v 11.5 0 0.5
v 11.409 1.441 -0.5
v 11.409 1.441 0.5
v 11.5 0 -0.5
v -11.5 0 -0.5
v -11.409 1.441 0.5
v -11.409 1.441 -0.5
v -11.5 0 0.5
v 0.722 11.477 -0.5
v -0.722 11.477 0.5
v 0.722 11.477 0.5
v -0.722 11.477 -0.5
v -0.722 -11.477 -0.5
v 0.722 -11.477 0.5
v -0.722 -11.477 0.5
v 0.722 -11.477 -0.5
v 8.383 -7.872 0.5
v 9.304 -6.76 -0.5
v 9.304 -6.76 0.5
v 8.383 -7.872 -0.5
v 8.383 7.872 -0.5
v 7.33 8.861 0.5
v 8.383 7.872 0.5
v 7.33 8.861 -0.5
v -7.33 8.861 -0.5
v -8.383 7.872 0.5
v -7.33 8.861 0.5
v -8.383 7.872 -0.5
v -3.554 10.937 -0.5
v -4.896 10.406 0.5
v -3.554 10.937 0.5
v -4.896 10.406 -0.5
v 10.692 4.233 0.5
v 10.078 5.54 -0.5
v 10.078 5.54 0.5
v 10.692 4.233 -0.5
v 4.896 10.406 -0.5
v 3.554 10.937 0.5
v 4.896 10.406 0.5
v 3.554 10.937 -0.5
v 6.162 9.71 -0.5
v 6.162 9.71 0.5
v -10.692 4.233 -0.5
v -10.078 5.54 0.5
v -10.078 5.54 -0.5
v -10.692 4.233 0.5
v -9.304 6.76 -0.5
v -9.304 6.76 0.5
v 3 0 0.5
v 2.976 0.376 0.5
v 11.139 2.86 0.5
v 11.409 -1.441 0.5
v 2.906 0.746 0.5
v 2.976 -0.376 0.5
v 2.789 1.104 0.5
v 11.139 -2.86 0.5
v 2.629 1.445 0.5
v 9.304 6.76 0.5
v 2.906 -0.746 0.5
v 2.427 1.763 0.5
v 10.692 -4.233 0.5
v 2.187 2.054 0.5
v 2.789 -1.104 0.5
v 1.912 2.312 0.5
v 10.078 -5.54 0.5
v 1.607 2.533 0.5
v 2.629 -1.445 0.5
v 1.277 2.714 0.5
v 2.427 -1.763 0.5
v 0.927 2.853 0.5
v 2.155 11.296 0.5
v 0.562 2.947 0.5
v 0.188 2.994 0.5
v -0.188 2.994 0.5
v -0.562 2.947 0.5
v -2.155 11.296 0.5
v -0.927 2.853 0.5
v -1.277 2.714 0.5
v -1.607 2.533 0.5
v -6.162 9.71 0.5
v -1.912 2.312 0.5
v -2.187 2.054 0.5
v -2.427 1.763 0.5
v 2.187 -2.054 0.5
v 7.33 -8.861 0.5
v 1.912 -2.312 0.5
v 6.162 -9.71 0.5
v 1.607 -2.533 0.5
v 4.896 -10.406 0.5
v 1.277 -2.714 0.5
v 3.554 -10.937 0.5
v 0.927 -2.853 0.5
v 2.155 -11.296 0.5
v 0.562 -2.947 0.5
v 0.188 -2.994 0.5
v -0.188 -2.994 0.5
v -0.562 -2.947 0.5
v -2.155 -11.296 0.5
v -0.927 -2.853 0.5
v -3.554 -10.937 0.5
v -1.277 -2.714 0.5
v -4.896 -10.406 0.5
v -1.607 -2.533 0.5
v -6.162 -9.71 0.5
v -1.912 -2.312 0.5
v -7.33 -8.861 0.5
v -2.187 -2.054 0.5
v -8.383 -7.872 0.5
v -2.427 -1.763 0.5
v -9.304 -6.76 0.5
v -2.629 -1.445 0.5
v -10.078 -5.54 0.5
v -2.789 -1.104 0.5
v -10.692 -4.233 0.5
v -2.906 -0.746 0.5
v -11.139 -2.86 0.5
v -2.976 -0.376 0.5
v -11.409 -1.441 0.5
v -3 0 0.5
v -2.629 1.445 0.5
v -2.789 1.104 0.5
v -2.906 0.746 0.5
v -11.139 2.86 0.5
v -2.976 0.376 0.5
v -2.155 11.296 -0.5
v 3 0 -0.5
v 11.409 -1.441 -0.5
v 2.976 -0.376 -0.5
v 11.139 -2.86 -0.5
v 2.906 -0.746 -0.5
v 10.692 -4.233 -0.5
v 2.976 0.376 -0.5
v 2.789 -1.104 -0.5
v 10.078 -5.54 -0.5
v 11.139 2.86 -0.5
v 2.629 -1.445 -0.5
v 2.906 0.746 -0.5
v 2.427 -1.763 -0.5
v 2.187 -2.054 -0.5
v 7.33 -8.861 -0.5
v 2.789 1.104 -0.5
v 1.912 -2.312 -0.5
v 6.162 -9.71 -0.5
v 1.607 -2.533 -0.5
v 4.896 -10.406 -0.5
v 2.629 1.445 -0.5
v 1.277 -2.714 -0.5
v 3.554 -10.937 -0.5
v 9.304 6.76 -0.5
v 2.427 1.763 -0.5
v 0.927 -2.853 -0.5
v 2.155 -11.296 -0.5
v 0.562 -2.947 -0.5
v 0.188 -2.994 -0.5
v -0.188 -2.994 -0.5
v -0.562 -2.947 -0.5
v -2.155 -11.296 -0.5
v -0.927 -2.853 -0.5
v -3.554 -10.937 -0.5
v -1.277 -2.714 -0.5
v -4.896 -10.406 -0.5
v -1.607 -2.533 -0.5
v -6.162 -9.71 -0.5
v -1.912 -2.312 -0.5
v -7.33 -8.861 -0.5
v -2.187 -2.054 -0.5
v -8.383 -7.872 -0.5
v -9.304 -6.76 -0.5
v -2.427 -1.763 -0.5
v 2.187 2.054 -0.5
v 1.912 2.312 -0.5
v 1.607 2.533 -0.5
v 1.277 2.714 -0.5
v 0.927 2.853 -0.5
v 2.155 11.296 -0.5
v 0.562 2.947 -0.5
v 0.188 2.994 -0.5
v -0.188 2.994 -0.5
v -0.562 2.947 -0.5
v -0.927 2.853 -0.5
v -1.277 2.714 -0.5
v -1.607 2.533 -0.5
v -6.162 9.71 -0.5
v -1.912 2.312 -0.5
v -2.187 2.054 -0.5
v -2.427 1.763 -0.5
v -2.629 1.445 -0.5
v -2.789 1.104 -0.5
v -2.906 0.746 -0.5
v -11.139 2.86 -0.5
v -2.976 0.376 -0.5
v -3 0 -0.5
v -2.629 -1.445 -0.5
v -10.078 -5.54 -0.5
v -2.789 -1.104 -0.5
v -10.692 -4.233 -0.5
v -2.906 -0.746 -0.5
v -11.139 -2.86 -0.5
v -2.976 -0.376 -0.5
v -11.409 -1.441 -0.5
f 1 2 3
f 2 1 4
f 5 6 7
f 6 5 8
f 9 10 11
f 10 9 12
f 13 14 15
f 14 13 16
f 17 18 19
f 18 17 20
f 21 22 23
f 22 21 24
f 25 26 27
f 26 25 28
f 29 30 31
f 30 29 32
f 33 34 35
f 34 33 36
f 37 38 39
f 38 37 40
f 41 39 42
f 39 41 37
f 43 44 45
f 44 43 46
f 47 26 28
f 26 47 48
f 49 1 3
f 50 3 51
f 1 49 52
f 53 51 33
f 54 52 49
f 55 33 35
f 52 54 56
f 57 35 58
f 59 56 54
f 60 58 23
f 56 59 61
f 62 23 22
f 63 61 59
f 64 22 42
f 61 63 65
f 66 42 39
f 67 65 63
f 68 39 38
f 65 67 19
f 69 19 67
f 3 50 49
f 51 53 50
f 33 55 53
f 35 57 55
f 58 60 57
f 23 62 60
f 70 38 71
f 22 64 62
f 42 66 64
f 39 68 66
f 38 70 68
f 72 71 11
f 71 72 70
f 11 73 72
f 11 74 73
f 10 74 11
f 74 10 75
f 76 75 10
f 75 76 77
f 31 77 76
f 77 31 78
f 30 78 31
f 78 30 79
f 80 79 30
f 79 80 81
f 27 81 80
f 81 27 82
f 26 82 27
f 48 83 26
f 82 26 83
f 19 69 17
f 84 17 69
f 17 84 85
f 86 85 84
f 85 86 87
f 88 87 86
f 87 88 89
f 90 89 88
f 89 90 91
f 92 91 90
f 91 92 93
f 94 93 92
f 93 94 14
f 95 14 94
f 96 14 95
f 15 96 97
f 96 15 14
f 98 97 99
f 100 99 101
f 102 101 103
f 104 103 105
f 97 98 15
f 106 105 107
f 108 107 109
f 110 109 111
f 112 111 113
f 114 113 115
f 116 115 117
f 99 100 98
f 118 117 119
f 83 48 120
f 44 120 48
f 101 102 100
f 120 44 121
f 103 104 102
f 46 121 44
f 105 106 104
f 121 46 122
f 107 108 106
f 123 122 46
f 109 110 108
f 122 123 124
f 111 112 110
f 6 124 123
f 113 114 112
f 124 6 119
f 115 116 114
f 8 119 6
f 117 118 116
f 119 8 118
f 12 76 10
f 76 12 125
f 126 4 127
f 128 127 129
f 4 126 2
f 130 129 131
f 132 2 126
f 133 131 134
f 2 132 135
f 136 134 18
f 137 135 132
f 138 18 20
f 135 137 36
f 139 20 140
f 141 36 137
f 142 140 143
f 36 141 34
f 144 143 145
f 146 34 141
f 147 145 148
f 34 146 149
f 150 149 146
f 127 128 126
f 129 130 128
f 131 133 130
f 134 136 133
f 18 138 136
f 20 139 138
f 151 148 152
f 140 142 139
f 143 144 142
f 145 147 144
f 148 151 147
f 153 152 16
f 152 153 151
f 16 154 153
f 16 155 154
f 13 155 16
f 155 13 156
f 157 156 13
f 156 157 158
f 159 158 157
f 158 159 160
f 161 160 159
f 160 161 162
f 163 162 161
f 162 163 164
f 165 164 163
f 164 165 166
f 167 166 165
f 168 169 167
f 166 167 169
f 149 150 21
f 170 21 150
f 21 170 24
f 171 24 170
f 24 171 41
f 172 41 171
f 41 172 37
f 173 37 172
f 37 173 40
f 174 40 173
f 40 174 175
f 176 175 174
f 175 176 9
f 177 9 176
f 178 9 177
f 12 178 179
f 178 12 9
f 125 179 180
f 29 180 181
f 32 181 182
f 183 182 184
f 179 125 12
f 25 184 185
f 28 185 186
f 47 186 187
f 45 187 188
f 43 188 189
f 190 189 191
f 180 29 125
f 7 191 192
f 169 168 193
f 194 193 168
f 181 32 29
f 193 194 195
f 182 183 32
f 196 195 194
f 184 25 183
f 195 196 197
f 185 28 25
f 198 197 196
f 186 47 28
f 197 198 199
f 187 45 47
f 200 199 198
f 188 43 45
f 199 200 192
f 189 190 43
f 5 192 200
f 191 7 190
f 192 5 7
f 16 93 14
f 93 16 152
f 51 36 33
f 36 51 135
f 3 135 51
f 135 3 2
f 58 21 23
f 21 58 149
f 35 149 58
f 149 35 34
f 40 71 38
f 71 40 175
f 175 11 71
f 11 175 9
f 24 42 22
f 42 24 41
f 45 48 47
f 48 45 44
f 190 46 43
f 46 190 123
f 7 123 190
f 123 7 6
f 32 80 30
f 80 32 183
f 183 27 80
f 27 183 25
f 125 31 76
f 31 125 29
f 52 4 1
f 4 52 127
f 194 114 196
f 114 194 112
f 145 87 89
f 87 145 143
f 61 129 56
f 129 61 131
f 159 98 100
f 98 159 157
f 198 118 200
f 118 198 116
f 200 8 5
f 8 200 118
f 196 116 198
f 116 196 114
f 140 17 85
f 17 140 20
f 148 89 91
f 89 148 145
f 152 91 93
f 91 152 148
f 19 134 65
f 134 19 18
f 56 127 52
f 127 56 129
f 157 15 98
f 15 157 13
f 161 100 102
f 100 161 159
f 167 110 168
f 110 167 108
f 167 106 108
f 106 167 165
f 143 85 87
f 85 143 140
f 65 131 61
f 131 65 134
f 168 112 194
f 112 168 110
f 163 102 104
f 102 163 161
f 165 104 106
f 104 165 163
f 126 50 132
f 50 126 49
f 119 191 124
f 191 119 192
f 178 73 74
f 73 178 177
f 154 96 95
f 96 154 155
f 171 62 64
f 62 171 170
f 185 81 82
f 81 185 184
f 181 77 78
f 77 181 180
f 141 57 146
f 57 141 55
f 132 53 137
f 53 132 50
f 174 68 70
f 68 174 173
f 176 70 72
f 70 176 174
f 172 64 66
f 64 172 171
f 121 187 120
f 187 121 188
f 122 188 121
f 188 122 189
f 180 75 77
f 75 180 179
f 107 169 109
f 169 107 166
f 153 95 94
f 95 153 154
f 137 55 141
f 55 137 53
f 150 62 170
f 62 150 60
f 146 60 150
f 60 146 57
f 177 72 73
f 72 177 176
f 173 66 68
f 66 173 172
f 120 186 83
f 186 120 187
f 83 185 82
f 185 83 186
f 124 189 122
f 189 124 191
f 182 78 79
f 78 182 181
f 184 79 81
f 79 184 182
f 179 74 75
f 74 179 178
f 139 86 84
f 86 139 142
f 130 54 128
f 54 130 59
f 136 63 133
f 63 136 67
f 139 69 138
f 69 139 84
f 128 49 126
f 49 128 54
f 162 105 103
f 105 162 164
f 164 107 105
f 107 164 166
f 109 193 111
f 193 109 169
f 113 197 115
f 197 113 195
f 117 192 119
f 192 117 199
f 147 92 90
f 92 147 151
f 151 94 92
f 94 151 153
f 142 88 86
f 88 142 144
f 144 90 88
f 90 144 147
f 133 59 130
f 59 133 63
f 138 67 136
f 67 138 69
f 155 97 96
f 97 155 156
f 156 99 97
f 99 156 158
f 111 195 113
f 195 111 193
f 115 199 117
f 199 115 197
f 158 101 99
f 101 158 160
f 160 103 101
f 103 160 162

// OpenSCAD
$fn = 50;


difference() {
	union() {
		translate(v = [0, 0, -0.5000000000]) {
			cylinder(h = 1, r = 11.5000000000);
		}
	}
	union() {
		translate(v = [0, 0, -100.0000000000]) {
			cylinder(h = 200, r = 3);
		}
	}
}
